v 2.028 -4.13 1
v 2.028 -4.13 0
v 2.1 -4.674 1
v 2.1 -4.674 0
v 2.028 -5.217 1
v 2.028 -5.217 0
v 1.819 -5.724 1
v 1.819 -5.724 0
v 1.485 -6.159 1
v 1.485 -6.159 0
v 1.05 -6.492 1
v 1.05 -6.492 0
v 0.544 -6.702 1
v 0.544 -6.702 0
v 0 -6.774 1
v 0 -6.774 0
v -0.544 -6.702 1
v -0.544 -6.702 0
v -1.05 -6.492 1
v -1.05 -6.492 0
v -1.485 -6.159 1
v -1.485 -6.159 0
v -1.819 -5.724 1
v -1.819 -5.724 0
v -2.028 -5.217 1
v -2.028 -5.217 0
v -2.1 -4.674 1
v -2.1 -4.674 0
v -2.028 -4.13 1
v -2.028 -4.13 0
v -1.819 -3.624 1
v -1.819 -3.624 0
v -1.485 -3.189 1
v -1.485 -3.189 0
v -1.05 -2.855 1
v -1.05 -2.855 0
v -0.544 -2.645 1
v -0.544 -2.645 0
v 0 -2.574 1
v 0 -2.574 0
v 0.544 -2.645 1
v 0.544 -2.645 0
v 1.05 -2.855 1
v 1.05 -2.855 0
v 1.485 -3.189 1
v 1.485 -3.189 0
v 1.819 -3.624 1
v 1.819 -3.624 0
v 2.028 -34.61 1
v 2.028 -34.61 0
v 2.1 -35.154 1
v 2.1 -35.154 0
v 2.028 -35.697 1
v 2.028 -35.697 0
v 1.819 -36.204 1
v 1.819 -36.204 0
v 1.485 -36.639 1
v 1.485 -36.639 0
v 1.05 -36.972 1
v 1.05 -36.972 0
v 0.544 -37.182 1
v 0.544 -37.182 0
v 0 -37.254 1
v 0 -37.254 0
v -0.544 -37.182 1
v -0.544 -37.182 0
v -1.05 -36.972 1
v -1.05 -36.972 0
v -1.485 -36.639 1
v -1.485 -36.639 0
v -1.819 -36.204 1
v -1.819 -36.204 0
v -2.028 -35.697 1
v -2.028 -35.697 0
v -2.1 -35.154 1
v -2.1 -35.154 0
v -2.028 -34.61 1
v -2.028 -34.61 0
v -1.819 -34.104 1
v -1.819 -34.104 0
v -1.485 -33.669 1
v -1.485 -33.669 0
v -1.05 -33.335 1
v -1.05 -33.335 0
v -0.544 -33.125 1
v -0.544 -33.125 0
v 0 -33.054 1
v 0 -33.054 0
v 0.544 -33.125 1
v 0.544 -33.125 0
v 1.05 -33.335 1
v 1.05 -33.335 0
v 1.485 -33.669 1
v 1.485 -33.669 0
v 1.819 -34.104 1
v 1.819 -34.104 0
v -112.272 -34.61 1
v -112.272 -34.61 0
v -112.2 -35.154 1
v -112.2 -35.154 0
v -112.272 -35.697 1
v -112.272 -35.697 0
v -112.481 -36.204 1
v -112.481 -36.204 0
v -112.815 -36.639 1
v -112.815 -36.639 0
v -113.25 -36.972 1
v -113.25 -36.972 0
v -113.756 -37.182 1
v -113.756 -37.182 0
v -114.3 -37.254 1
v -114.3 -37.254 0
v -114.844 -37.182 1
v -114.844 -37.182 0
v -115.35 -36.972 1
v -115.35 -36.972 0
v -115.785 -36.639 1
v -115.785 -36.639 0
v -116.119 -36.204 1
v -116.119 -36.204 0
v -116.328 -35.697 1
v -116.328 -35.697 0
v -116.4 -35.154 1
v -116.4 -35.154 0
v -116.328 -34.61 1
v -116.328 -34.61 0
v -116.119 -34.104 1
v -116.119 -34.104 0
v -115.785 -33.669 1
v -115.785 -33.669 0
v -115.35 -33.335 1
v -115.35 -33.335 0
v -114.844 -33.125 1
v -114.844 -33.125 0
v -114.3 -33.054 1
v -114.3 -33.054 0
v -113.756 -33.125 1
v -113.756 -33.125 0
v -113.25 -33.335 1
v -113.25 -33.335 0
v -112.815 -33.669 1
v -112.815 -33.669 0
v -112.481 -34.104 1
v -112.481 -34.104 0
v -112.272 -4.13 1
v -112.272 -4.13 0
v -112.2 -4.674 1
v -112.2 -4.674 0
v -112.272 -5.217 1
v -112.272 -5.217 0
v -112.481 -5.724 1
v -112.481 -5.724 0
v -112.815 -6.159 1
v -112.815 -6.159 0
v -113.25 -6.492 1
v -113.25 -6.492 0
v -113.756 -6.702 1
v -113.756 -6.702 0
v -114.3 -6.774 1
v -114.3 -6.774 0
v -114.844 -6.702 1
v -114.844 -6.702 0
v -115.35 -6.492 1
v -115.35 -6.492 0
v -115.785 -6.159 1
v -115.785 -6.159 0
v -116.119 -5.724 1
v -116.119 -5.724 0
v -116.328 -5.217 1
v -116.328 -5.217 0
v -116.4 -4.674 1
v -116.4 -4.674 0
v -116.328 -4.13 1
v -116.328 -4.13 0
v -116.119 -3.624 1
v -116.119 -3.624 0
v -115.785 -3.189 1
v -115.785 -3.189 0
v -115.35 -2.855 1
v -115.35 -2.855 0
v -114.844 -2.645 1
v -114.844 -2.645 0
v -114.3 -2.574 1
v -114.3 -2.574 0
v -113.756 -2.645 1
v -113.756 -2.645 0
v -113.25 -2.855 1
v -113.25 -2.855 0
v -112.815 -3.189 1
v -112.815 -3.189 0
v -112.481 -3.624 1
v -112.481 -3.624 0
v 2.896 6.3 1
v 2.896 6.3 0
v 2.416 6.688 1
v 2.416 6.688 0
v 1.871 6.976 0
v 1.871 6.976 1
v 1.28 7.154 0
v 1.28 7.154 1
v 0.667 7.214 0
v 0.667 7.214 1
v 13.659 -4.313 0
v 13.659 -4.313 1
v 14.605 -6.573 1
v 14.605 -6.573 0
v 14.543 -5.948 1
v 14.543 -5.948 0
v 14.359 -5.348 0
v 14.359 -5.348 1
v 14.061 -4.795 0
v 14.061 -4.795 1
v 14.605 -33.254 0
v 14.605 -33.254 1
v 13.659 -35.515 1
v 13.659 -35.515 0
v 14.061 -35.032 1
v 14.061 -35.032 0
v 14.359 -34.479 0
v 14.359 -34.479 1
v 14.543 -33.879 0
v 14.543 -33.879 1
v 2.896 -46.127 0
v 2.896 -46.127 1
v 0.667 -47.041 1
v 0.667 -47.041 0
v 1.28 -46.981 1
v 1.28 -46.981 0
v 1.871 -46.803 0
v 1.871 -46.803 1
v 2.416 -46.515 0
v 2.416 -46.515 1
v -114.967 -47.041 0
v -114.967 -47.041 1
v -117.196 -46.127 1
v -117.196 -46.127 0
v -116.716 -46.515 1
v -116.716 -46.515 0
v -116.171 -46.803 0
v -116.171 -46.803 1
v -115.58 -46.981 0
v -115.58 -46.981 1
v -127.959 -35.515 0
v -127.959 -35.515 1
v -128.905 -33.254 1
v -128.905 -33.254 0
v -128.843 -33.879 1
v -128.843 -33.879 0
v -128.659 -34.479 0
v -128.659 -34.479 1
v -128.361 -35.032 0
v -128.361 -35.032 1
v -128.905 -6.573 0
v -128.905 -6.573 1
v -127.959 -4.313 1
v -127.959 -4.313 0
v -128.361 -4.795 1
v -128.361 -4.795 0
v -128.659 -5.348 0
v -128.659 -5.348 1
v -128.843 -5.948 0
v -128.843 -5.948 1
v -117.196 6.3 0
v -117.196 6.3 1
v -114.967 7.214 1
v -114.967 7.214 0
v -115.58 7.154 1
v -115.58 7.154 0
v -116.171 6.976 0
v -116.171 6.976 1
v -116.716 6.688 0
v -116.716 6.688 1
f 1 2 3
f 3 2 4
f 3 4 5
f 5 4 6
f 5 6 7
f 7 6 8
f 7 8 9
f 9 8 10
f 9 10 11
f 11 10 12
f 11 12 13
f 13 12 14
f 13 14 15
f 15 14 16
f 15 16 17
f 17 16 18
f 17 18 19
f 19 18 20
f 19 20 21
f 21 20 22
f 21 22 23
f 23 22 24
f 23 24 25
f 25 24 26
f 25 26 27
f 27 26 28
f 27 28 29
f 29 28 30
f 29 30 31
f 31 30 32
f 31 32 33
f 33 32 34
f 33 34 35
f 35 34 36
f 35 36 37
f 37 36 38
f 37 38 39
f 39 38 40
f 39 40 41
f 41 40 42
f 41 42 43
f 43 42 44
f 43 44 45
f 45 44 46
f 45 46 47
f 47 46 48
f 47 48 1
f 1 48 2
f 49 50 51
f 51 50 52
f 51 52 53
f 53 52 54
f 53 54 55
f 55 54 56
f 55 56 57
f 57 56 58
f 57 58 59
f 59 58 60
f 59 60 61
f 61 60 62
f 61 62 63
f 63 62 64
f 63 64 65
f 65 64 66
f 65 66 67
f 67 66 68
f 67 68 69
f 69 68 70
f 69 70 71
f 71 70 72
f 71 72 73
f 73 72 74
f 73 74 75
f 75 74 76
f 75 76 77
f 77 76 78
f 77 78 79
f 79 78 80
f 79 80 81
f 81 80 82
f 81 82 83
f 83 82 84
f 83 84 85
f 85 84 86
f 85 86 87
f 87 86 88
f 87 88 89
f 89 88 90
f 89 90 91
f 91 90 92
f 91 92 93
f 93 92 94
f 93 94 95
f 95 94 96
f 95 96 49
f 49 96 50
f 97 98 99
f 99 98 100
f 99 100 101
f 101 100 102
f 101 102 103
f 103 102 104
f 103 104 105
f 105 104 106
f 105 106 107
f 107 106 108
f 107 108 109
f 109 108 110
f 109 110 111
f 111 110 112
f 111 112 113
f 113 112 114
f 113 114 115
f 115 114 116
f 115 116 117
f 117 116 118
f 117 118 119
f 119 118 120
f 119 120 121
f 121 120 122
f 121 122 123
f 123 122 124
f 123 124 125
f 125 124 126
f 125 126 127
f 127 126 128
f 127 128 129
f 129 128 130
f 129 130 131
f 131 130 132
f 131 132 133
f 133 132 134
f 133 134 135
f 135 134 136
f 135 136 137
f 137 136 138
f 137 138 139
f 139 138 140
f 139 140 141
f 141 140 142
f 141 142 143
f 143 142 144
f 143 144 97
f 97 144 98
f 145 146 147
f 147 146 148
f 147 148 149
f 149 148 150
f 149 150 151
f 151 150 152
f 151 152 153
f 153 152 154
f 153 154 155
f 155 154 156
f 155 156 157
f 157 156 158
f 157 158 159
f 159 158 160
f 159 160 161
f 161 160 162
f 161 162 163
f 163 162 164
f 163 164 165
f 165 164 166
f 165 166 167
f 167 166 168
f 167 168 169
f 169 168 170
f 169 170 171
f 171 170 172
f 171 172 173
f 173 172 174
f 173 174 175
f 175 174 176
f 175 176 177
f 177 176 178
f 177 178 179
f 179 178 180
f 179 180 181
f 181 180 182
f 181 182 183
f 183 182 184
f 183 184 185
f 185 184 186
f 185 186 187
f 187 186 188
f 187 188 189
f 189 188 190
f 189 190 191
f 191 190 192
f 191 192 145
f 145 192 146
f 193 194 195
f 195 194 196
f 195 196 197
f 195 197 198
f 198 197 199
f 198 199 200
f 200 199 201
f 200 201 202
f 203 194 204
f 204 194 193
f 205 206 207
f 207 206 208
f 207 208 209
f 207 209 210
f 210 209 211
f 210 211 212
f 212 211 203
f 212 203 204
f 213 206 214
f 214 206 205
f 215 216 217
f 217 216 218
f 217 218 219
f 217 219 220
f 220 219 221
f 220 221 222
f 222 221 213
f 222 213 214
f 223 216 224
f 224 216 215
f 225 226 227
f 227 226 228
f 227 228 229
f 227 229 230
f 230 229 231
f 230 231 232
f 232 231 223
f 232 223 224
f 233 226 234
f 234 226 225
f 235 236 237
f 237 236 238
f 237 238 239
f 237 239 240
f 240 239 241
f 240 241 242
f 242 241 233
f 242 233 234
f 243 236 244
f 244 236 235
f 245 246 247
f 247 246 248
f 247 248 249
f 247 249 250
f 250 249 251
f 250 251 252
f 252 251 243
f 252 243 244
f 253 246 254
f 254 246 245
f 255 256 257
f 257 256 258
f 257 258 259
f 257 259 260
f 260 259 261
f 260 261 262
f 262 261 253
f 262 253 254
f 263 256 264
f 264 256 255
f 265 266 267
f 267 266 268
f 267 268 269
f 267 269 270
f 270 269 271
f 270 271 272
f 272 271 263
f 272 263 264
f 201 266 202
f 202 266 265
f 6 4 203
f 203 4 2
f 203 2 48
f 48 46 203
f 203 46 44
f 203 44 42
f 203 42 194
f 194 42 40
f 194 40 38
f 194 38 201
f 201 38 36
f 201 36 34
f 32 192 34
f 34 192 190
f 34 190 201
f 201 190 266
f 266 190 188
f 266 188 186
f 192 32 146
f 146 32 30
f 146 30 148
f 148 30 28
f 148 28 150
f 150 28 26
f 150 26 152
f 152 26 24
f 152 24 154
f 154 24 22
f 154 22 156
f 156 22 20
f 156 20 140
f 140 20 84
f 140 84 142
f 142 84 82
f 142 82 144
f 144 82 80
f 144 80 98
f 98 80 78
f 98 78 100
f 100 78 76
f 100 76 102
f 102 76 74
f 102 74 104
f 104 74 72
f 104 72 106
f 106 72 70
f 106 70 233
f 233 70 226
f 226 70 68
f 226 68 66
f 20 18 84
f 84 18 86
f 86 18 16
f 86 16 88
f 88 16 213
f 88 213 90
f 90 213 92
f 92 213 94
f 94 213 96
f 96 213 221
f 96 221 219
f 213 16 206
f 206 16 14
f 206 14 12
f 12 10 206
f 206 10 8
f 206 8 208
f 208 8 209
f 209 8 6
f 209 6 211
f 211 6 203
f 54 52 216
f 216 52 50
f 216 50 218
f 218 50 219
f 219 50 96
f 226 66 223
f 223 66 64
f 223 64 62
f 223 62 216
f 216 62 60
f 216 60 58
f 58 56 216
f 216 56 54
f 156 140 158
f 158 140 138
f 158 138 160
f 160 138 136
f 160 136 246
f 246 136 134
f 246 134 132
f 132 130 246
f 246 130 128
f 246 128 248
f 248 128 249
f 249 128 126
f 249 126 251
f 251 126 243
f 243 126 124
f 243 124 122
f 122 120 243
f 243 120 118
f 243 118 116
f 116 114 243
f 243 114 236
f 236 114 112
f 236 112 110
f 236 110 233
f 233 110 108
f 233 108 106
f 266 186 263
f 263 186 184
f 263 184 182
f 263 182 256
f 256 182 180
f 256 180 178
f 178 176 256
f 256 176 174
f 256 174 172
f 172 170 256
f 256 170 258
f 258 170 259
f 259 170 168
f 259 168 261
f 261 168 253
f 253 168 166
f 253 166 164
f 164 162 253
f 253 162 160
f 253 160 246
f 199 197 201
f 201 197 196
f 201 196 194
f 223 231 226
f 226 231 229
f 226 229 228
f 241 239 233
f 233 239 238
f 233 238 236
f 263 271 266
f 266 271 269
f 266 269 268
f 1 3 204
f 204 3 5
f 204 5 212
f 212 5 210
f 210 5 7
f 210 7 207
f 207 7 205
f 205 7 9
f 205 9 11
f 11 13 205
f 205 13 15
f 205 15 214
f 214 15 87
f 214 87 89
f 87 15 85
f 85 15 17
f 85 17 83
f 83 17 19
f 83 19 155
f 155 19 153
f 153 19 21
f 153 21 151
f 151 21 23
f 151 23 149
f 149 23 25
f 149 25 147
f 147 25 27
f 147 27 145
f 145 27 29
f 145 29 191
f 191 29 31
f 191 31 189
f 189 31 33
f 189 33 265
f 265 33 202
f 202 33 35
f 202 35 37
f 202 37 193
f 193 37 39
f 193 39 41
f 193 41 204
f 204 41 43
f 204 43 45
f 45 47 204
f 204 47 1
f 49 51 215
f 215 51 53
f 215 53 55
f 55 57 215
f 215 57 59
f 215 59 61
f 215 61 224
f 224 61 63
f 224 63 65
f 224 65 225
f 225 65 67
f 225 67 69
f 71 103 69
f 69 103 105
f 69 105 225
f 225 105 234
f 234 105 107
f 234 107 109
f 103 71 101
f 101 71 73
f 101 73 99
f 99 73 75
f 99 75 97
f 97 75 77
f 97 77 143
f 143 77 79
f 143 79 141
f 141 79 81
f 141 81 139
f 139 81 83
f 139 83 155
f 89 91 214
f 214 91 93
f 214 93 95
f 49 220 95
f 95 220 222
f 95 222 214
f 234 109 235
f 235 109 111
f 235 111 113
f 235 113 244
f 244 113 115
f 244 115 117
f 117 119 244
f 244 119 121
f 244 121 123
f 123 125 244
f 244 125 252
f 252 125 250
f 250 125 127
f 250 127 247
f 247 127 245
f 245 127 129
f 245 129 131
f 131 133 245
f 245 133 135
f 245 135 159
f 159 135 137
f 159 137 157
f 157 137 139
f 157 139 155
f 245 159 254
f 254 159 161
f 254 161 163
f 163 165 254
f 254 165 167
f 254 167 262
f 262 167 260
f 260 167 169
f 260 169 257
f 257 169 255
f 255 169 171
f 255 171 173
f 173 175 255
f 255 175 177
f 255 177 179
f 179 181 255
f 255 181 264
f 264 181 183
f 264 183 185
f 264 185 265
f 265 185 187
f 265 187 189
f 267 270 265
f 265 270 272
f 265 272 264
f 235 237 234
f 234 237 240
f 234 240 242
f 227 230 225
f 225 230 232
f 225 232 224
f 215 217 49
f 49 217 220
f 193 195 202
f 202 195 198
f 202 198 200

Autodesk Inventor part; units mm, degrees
ref_plane "YZ Plane" through (0, 0, 0) normal (1, 0, 0) x (0, 1, 0)
ref_plane "XZ Plane" through (0, 0, 0) normal (0, 1, 0) x (-1, 0, 0)
ref_plane "XY Plane" through (0, 0, 0) normal (0, 0, 1) x (1, 0, 0)
sketch "Sketch1" plane through (0, 0, 0) normal (0, 0, 1) x (1, 0, 0)
  circle A0 centre (-114.3, -4.6736) radius 2.1 projected
  circle A1 centre (-114.3, -35.1536) radius 2.1 projected
  circle A2 centre (0, -35.1536) radius 2.1 projected
  circle A3 centre (0, -4.6736) radius 2.1 projected
  line L0 (-114.9665, 7.2136) -> (0.6665, 7.2136) projected
  arc A4 (2.8956, 6.2995) -> (0.6665, 7.2136) centre (0.6665, 4.0386) ccw projected
  line L1 (2.8956, 6.2995) -> (13.6591, -4.3125) projected
  arc A5 (14.605, -6.5734) -> (13.6591, -4.3125) centre (11.43, -6.5734) ccw projected
  line L2 (14.605, -6.5734) -> (14.605, -33.2538) projected
  arc A6 (13.6591, -35.5147) -> (14.605, -33.2538) centre (11.43, -33.2538) ccw projected
  line L3 (13.6591, -35.5147) -> (2.8956, -46.1267) projected
  line L4 (0.6665, -47.0408) -> (-114.9665, -47.0408) projected
  arc A7 (0.6665, -47.0408) -> (2.8956, -46.1267) centre (0.6665, -43.8658) ccw projected
  arc A8 (-117.1956, -46.1267) -> (-114.9665, -47.0408) centre (-114.9665, -43.8658) ccw projected
  line L5 (-117.1956, -46.1267) -> (-127.9591, -35.5147) projected
  arc A9 (-128.905, -33.2538) -> (-127.9591, -35.5147) centre (-125.73, -33.2538) ccw projected
  line L6 (-128.905, -33.2538) -> (-128.905, -6.5734) projected
  arc A10 (-127.9591, -4.3125) -> (-128.905, -6.5734) centre (-125.73, -6.5734) ccw projected
  line L7 (-127.9591, -4.3125) -> (-117.1956, 6.2995) projected
  arc A11 (-114.9665, 7.2136) -> (-117.1956, 6.2995) centre (-114.9665, 4.0386) ccw projected
  point P0 (0, 0)
extrude "Extrusion1" add sketch "Sketch1" along normal blind 1
properties part number "Nameplatedrill"
